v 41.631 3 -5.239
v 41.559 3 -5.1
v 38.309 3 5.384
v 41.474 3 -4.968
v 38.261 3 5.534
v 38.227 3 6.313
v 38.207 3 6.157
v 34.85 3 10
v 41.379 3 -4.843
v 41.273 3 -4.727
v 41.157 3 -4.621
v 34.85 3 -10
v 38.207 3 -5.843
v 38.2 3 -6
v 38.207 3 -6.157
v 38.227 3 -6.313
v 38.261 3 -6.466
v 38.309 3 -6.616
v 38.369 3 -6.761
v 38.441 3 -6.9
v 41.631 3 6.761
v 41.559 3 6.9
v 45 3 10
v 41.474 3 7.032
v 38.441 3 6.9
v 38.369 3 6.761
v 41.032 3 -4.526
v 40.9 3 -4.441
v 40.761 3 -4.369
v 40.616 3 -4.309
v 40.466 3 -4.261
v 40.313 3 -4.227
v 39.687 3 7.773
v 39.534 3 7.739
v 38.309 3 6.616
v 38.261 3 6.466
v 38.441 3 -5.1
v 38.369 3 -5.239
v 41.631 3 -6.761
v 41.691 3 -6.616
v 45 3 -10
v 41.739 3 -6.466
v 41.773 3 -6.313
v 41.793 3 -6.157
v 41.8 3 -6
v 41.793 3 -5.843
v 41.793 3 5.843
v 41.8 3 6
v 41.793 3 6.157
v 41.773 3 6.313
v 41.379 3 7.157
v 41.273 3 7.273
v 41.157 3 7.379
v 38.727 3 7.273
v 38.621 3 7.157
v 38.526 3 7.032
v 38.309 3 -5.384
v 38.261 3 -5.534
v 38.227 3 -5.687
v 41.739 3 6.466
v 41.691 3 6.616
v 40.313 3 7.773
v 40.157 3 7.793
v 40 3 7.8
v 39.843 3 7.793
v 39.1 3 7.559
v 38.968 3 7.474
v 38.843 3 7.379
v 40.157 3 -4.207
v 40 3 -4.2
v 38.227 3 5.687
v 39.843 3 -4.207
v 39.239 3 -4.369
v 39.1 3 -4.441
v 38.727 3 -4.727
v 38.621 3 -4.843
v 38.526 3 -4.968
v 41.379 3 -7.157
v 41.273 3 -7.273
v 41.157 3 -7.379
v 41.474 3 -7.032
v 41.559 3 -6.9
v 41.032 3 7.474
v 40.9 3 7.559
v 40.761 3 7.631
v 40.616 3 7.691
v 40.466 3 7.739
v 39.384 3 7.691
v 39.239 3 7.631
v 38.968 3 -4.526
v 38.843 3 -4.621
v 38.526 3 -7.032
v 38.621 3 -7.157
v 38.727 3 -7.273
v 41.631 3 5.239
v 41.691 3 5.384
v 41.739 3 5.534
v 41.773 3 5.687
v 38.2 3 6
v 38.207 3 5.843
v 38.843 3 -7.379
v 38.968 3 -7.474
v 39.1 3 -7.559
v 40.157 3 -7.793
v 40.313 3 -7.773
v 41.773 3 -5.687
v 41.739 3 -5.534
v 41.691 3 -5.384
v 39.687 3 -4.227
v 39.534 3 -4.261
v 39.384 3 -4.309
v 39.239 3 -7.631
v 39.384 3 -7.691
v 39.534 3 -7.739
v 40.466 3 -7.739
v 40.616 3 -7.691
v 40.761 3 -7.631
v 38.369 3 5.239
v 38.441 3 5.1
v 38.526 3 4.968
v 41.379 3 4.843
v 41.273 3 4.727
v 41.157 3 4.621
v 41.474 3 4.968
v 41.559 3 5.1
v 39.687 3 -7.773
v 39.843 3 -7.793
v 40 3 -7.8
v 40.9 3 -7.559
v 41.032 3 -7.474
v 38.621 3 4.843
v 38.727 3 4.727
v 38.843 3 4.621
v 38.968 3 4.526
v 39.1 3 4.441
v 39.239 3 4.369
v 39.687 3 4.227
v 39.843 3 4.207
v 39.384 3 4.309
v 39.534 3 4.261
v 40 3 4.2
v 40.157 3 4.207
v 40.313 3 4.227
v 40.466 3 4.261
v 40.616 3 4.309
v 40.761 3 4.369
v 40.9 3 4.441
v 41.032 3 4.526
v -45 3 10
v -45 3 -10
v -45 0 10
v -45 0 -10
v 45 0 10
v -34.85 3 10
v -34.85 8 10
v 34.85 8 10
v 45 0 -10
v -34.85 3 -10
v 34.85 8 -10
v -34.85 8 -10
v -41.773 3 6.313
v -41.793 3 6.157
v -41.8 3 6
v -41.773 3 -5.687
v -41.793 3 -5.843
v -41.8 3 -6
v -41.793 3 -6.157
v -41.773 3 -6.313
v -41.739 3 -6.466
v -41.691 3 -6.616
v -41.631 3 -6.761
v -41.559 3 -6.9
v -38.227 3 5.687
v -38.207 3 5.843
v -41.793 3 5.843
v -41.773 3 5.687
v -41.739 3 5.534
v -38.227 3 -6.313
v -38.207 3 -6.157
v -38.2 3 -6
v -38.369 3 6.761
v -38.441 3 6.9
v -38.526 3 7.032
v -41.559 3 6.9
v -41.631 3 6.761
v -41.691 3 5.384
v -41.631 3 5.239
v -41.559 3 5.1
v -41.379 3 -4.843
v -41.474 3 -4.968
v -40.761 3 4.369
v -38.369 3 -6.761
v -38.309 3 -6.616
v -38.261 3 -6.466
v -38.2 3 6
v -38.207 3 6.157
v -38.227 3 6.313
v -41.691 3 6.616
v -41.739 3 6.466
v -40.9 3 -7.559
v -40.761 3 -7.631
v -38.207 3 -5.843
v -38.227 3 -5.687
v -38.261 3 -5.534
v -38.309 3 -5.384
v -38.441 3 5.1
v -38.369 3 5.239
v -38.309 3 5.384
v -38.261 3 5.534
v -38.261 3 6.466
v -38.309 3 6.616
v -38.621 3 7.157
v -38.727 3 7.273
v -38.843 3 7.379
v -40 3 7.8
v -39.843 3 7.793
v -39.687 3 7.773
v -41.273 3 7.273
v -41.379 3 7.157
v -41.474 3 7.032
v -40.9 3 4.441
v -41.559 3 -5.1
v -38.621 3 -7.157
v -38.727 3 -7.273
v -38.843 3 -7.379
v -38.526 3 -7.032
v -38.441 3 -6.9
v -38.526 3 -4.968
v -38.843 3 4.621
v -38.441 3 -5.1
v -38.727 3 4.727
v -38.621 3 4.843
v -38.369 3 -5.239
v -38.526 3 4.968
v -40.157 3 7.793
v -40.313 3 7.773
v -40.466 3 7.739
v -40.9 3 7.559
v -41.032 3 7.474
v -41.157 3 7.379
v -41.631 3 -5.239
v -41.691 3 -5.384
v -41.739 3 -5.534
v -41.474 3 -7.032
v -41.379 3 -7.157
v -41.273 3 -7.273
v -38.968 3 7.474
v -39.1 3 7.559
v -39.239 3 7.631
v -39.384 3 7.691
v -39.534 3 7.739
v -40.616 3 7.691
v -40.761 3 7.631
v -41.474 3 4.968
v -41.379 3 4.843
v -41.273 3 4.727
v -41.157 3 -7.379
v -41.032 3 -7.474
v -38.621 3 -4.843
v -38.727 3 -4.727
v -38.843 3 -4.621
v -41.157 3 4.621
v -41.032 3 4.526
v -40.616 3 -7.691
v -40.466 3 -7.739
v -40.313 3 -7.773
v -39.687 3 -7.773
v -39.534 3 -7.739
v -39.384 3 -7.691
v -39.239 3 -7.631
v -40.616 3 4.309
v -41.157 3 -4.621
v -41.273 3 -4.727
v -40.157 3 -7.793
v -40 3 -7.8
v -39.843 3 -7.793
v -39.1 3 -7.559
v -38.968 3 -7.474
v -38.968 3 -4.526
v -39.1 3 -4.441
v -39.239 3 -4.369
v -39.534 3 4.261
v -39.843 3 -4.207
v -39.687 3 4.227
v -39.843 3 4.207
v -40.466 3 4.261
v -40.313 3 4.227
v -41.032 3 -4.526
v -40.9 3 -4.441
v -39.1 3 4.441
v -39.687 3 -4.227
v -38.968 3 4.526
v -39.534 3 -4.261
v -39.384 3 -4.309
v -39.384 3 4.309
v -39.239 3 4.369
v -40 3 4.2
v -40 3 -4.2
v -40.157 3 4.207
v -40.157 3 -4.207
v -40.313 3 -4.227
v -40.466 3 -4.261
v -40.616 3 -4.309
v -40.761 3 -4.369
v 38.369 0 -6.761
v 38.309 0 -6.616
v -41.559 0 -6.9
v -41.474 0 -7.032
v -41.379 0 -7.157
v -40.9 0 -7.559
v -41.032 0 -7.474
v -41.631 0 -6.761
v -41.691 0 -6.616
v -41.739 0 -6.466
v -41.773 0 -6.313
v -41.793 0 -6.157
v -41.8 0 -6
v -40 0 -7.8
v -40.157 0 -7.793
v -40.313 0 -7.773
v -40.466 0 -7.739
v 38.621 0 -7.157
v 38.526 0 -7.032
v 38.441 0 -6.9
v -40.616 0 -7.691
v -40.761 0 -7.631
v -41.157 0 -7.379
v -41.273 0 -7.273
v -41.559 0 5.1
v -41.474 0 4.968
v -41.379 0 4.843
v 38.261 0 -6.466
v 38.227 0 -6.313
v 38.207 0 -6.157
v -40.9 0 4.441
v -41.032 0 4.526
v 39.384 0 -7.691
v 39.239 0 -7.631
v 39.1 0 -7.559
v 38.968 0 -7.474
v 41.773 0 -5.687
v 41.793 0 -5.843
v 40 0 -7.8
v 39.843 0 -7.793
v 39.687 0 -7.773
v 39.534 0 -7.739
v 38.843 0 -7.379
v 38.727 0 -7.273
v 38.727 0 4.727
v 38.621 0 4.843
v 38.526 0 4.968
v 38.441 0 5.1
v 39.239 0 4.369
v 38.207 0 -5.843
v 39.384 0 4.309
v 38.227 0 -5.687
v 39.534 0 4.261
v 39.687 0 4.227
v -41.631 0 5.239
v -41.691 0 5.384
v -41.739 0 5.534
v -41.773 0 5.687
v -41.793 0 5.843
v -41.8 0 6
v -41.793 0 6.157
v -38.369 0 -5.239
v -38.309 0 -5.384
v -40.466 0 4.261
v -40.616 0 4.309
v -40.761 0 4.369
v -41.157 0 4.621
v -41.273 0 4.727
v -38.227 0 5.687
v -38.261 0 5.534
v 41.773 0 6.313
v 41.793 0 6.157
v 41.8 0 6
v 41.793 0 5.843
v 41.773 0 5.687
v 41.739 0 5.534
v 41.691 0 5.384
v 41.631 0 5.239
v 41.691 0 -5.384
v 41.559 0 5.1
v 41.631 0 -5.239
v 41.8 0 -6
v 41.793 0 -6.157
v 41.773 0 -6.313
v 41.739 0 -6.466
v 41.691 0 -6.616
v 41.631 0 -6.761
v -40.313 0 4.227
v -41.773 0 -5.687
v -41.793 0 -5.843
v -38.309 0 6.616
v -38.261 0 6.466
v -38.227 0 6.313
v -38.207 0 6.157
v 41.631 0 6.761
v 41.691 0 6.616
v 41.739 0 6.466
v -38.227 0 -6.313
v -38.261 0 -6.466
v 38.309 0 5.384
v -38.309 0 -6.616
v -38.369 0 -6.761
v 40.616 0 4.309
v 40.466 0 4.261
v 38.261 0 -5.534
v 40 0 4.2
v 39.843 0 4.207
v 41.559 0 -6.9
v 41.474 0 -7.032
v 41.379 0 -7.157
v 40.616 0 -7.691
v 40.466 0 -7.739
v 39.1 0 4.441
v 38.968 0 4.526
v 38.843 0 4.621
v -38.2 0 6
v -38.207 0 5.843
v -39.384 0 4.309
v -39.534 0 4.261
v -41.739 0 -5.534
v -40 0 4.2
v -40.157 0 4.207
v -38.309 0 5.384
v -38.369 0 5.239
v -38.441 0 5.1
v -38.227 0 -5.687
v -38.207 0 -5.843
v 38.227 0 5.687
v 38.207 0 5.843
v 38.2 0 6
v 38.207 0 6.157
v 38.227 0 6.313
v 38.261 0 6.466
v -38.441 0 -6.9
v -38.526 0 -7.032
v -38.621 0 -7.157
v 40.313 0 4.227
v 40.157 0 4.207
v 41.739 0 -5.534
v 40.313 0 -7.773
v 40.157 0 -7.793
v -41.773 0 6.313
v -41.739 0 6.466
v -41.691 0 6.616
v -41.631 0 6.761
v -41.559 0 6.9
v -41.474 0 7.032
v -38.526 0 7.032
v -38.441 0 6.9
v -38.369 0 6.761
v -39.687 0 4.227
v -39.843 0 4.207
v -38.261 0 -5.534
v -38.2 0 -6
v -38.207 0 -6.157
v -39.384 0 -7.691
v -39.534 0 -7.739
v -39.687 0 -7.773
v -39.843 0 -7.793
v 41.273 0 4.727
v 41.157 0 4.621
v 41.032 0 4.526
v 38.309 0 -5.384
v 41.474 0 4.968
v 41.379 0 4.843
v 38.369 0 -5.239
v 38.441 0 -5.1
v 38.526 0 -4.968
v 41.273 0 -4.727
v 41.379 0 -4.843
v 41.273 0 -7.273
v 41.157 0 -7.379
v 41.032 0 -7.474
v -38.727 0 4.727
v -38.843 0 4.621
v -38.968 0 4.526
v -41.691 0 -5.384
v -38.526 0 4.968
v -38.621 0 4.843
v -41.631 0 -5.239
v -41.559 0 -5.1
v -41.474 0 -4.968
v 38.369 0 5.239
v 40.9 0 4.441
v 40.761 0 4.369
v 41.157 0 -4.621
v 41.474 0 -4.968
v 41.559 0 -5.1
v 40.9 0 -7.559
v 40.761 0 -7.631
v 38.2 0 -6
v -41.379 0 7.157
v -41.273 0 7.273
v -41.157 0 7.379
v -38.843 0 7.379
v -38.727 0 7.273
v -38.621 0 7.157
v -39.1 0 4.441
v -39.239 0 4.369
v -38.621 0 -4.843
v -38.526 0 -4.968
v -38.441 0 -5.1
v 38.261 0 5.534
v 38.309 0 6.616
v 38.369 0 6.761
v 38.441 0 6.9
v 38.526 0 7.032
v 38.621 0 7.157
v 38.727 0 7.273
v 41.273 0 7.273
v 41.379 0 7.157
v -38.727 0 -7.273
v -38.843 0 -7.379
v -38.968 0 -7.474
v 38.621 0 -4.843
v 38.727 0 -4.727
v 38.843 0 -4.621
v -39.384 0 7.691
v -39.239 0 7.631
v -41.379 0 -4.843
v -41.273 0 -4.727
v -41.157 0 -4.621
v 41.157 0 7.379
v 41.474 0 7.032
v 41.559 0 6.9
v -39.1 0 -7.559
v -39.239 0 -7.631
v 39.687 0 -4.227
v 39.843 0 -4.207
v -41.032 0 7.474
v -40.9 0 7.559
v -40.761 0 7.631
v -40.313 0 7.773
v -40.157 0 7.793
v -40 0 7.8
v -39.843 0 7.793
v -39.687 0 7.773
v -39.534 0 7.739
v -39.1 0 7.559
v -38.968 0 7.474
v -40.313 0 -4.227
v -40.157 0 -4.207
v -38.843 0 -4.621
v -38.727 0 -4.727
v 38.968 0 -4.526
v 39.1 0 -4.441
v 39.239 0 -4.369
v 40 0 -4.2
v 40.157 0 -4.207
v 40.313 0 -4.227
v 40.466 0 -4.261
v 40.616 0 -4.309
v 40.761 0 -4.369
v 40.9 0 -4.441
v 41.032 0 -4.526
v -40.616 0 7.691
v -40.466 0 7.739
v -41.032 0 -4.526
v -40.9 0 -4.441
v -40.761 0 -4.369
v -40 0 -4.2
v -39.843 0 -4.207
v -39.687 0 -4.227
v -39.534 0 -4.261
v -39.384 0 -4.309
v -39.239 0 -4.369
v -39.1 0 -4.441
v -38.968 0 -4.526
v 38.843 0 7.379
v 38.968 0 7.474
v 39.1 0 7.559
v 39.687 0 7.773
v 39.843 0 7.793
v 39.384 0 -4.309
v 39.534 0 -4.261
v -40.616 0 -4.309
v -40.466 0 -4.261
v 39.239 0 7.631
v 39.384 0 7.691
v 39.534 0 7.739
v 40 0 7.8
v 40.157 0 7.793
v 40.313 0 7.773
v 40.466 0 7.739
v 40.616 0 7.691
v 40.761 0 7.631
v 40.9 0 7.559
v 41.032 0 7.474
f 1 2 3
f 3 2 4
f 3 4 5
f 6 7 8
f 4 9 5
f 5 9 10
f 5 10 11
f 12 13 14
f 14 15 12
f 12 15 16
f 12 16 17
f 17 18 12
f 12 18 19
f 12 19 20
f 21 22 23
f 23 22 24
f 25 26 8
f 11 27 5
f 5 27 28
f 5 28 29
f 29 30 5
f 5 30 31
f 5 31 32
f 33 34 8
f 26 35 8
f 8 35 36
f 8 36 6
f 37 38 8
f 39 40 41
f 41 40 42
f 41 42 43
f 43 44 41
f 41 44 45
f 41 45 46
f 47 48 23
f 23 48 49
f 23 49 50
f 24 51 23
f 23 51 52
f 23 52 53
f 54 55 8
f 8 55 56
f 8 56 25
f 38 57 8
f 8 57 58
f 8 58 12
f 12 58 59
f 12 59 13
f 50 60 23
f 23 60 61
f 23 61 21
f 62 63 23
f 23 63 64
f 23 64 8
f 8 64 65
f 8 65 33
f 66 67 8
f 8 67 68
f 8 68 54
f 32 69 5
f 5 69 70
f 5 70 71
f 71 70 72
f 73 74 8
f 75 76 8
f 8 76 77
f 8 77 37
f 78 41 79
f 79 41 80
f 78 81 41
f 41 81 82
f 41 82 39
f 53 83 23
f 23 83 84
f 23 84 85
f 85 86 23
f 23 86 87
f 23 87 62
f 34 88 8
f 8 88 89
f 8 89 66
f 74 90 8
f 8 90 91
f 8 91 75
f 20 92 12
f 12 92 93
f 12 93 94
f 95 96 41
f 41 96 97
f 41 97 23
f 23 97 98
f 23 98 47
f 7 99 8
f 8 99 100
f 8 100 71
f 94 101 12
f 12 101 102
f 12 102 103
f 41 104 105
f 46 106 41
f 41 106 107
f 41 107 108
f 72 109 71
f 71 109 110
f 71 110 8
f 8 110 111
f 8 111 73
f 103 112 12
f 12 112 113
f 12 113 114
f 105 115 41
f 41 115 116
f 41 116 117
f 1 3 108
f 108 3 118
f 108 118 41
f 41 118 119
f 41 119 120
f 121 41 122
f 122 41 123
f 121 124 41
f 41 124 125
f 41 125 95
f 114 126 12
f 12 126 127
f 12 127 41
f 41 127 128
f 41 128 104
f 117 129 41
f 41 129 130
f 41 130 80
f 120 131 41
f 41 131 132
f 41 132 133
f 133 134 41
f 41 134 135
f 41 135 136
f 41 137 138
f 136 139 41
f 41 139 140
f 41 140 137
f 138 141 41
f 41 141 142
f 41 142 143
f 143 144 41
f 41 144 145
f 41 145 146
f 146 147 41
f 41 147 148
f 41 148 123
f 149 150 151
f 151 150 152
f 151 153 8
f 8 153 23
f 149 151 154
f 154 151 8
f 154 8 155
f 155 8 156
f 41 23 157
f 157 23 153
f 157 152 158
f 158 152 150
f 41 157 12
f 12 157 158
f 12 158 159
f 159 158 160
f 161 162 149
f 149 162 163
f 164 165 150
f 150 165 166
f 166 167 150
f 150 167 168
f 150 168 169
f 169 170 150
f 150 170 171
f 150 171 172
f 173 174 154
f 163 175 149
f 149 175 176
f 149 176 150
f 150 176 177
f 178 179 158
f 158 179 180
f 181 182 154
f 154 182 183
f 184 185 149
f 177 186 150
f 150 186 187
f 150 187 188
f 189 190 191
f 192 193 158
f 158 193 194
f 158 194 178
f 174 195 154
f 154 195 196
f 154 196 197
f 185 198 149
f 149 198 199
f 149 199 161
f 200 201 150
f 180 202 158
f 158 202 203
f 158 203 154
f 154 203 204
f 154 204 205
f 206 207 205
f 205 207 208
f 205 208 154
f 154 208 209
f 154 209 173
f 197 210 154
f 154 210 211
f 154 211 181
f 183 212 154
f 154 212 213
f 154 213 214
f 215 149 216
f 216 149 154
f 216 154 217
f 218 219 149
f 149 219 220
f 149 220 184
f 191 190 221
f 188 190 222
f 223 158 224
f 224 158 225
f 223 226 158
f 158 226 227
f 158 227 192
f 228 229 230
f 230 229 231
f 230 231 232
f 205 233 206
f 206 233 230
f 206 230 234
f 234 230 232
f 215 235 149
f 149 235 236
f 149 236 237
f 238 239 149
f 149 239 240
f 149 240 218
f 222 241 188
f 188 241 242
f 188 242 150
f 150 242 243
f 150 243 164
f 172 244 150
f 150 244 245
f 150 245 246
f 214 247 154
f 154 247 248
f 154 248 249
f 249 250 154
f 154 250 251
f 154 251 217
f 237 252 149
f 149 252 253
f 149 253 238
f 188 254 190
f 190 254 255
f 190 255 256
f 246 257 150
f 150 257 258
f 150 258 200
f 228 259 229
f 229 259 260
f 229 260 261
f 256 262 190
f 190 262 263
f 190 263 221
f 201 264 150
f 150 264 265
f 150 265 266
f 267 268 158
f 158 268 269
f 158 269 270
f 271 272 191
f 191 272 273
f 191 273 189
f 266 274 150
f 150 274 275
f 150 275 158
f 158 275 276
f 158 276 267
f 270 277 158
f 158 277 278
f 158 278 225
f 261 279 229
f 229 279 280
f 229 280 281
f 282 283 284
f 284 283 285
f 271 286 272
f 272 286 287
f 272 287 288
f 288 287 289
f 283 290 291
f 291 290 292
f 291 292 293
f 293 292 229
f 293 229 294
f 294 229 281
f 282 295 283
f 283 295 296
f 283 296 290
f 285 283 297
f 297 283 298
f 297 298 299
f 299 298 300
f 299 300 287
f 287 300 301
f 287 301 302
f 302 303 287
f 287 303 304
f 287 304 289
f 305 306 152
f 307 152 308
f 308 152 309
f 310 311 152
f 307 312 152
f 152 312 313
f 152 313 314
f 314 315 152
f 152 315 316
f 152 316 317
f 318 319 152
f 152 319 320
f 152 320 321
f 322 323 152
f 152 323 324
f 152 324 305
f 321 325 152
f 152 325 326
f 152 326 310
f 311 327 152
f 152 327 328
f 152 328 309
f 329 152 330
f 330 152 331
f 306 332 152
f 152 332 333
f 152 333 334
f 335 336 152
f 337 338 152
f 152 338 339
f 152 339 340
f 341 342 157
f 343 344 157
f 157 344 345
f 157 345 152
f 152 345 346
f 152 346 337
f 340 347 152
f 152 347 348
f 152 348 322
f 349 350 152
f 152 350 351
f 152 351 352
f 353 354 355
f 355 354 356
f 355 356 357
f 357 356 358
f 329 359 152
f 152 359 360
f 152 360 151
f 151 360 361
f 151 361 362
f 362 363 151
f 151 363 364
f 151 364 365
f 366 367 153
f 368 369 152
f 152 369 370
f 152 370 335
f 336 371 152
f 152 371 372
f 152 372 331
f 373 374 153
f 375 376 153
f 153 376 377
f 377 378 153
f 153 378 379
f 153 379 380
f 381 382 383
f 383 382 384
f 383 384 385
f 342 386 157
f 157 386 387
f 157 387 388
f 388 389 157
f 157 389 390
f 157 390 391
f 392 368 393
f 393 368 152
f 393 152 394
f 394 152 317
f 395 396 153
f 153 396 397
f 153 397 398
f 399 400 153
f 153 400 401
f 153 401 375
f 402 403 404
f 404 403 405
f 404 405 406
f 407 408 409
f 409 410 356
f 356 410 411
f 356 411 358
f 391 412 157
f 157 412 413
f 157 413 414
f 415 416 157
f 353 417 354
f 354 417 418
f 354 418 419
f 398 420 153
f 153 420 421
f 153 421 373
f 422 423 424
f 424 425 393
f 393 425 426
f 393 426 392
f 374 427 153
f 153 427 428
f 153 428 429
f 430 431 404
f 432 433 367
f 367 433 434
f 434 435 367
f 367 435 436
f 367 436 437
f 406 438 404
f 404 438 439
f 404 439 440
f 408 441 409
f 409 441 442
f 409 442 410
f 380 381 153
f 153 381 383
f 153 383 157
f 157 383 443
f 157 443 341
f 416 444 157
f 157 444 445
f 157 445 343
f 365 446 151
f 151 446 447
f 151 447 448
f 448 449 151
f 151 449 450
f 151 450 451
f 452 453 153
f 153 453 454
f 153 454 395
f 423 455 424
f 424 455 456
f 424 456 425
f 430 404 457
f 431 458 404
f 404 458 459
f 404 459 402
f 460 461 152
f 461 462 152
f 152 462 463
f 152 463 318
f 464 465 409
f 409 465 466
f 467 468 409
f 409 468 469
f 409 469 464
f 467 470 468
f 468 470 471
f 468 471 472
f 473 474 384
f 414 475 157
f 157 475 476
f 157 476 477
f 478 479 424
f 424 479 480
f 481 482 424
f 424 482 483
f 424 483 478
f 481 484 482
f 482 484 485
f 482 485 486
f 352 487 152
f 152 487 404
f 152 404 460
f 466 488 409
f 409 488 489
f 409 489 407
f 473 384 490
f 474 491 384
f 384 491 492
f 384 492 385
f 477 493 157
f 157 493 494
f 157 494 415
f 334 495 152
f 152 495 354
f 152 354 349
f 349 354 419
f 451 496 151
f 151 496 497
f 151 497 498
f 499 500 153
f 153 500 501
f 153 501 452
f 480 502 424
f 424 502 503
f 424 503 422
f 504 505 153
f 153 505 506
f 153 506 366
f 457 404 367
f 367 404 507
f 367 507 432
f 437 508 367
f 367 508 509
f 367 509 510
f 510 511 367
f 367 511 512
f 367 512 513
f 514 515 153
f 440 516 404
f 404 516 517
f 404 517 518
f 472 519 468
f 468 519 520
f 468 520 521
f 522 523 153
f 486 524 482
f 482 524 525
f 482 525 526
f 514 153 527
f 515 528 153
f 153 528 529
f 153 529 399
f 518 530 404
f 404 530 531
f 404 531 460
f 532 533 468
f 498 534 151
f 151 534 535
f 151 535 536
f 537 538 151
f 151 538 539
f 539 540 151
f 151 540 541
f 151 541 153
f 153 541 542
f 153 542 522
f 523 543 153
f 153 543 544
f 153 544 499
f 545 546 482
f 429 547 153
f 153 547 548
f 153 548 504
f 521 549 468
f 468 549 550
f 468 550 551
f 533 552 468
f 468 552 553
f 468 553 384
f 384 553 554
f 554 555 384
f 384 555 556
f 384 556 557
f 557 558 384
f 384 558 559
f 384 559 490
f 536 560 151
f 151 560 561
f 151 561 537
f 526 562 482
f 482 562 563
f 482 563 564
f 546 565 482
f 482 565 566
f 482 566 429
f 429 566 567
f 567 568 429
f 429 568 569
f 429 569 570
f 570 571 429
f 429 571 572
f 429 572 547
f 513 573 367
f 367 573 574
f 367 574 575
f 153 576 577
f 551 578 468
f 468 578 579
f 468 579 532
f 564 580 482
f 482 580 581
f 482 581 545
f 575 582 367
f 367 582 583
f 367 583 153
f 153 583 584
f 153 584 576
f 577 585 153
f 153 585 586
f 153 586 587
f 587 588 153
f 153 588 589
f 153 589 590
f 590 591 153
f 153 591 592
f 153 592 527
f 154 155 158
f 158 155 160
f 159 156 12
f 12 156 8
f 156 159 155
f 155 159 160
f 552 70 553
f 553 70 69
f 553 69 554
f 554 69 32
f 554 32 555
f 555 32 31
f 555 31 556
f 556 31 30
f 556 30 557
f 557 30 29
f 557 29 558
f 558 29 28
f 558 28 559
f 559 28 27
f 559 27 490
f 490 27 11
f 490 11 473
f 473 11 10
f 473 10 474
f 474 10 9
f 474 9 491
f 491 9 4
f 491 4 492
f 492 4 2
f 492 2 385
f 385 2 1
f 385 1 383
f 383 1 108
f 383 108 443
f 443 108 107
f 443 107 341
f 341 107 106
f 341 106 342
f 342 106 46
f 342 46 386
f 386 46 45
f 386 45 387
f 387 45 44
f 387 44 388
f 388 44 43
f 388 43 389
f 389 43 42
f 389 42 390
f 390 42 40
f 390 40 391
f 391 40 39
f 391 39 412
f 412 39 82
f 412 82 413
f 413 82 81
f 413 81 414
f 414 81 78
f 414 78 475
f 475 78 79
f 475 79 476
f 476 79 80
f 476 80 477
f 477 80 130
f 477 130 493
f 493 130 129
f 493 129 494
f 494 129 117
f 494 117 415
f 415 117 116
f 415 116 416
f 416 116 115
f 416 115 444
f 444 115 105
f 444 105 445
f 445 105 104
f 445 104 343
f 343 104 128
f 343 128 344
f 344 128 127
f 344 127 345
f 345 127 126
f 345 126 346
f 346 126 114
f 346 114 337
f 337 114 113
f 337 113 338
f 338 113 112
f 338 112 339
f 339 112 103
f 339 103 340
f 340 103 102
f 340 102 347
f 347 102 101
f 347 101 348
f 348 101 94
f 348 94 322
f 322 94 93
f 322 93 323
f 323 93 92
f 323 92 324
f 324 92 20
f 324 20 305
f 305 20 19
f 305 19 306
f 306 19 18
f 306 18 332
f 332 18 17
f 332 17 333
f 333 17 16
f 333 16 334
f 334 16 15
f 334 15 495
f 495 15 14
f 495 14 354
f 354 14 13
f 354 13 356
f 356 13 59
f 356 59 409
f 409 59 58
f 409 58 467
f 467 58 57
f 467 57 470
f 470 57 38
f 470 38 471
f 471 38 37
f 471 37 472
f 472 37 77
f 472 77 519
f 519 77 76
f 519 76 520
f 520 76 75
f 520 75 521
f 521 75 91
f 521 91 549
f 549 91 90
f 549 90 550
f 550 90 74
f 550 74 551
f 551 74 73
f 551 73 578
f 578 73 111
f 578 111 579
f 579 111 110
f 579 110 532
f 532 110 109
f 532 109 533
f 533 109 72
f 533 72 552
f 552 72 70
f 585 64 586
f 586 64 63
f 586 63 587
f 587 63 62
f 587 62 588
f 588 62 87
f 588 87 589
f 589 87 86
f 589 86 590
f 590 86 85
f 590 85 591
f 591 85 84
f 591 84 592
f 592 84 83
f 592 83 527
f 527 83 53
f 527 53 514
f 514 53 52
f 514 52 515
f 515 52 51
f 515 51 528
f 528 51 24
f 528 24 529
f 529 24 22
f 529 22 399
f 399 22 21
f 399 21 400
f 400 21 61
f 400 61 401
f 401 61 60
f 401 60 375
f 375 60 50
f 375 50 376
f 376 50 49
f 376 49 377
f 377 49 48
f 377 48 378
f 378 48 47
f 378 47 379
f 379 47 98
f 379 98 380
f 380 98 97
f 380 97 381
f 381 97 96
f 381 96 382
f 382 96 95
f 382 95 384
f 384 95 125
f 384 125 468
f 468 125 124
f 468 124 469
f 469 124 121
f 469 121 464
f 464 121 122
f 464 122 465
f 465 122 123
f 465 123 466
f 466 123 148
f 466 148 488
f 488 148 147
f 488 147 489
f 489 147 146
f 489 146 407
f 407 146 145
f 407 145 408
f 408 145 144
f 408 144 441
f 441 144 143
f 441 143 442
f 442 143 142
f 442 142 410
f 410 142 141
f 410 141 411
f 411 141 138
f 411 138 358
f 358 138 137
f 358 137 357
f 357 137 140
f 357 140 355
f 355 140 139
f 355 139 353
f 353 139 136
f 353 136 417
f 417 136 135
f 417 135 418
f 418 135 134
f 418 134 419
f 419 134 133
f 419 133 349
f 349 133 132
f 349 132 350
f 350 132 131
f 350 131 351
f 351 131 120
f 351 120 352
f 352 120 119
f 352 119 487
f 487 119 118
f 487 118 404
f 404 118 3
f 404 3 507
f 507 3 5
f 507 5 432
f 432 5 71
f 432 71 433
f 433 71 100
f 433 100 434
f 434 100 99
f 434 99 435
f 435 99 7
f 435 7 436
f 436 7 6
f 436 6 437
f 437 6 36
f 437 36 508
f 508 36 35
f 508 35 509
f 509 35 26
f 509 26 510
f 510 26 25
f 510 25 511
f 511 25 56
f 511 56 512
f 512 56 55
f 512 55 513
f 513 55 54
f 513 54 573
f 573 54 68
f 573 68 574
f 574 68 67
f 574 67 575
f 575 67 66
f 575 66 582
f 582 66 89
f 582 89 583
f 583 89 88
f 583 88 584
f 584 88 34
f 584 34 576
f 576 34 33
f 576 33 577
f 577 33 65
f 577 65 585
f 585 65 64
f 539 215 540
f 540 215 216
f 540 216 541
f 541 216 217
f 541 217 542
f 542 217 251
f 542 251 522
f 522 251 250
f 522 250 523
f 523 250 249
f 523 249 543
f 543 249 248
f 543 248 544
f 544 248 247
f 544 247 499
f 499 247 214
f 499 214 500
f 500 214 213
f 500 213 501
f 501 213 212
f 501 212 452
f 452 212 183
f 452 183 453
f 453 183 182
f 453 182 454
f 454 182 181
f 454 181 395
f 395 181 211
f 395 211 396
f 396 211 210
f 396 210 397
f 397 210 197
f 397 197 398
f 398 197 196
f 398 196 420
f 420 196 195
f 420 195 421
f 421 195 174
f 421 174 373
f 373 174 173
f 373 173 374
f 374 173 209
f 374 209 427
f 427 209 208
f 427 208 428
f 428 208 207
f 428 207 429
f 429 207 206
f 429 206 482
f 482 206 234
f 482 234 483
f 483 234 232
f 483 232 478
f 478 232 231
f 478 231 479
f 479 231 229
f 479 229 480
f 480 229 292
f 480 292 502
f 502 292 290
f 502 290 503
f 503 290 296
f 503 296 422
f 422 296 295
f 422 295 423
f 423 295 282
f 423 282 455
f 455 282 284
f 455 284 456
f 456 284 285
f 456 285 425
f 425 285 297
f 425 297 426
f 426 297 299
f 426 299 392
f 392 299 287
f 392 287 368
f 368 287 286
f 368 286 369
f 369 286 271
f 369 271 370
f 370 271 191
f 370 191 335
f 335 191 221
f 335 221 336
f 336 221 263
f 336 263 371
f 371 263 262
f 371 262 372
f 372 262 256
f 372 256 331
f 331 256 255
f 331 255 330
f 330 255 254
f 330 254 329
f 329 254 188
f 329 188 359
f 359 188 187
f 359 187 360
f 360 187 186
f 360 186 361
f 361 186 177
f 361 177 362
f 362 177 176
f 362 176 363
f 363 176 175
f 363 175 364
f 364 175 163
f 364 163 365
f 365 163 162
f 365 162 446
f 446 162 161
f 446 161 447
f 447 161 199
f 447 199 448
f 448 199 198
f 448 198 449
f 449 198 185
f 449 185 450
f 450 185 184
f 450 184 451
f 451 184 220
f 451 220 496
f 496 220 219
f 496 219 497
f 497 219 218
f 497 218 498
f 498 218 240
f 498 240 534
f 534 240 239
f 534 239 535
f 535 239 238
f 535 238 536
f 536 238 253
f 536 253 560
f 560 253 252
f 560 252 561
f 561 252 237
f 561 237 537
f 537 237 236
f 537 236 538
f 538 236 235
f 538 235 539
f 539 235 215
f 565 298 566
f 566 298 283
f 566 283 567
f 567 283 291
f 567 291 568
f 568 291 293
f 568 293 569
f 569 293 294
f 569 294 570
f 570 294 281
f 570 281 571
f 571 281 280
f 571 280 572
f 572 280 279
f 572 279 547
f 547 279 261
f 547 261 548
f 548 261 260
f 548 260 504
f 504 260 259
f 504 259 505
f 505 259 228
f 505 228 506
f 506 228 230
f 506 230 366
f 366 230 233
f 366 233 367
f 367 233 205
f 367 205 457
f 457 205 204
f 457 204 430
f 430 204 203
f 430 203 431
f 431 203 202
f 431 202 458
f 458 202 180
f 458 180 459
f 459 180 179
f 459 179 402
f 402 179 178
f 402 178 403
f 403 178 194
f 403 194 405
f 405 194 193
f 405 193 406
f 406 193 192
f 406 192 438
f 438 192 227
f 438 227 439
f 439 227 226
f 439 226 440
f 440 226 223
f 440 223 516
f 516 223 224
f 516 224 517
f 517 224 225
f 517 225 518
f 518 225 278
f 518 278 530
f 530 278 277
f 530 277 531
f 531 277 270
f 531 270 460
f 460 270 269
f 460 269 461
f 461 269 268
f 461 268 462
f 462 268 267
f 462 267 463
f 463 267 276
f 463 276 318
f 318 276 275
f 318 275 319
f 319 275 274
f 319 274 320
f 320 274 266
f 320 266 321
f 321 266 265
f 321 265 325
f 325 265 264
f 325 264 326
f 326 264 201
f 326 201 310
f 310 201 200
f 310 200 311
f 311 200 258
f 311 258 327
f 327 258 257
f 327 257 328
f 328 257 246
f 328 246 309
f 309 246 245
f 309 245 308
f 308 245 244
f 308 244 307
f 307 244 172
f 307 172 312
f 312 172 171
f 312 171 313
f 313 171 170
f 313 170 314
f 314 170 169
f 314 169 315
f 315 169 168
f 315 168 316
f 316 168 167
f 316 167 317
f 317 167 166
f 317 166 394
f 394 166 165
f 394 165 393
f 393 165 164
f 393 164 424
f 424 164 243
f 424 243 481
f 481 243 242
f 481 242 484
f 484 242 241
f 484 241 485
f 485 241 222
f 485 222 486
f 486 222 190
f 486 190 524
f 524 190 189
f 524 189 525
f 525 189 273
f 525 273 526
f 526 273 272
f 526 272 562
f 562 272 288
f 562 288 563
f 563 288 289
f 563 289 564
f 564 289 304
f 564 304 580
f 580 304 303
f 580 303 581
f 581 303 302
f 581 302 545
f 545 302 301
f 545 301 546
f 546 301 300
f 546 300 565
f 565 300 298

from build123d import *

# Parameters (mm, degrees)
SKETCH1_W                = 90
SKETCH1_H                = 20
BOSS_EXTRUDE1_DEPTH      = 3
SKETCH1_3_W              = 69.7
SKETCH1_3_H              = 20
BOSS_EXTRUDE2_DEPTH      = 8
M3_CLEARANCE_HOLE1_D     = 3.6
M3_CLEARANCE_HOLE1_DEPTH = 10
M3_CLEARANCE_HOLE1_TIP   = 1.081549114


with BuildPart() as part:
    # Sketch1 → Boss-Extrude1 (new body)
    with BuildSketch(Plane(origin=(0, 0, 0), x_dir=(1, 0, 0), z_dir=(0, 1, 0))):
        Rectangle(SKETCH1_W, SKETCH1_H)
    extrude(amount=BOSS_EXTRUDE1_DEPTH)

    # Sketch1<3> → Boss-Extrude2 (add)
    with BuildSketch(Plane(origin=(0, 0, 0), x_dir=(1, 0, 0), z_dir=(0, 1, 0))):
        Rectangle(SKETCH1_3_W, SKETCH1_3_H)
    extrude(amount=BOSS_EXTRUDE2_DEPTH)

    # M3 Clearance Hole1
    with Locations(Plane(origin=(0, 3, 0), x_dir=(1, 0, 0), z_dir=(0, 1, 0))):
        with Locations((-40, 6), (-40, -6), (40, -6), (40, 6)):
            Hole(M3_CLEARANCE_HOLE1_D / 2, depth=M3_CLEARANCE_HOLE1_DEPTH)
            with Locations((0, 0, -(M3_CLEARANCE_HOLE1_DEPTH + M3_CLEARANCE_HOLE1_TIP / 2))):  # 118° drill point
                Cone(0, M3_CLEARANCE_HOLE1_D / 2, M3_CLEARANCE_HOLE1_TIP, mode=Mode.SUBTRACT)


solid = part.part
